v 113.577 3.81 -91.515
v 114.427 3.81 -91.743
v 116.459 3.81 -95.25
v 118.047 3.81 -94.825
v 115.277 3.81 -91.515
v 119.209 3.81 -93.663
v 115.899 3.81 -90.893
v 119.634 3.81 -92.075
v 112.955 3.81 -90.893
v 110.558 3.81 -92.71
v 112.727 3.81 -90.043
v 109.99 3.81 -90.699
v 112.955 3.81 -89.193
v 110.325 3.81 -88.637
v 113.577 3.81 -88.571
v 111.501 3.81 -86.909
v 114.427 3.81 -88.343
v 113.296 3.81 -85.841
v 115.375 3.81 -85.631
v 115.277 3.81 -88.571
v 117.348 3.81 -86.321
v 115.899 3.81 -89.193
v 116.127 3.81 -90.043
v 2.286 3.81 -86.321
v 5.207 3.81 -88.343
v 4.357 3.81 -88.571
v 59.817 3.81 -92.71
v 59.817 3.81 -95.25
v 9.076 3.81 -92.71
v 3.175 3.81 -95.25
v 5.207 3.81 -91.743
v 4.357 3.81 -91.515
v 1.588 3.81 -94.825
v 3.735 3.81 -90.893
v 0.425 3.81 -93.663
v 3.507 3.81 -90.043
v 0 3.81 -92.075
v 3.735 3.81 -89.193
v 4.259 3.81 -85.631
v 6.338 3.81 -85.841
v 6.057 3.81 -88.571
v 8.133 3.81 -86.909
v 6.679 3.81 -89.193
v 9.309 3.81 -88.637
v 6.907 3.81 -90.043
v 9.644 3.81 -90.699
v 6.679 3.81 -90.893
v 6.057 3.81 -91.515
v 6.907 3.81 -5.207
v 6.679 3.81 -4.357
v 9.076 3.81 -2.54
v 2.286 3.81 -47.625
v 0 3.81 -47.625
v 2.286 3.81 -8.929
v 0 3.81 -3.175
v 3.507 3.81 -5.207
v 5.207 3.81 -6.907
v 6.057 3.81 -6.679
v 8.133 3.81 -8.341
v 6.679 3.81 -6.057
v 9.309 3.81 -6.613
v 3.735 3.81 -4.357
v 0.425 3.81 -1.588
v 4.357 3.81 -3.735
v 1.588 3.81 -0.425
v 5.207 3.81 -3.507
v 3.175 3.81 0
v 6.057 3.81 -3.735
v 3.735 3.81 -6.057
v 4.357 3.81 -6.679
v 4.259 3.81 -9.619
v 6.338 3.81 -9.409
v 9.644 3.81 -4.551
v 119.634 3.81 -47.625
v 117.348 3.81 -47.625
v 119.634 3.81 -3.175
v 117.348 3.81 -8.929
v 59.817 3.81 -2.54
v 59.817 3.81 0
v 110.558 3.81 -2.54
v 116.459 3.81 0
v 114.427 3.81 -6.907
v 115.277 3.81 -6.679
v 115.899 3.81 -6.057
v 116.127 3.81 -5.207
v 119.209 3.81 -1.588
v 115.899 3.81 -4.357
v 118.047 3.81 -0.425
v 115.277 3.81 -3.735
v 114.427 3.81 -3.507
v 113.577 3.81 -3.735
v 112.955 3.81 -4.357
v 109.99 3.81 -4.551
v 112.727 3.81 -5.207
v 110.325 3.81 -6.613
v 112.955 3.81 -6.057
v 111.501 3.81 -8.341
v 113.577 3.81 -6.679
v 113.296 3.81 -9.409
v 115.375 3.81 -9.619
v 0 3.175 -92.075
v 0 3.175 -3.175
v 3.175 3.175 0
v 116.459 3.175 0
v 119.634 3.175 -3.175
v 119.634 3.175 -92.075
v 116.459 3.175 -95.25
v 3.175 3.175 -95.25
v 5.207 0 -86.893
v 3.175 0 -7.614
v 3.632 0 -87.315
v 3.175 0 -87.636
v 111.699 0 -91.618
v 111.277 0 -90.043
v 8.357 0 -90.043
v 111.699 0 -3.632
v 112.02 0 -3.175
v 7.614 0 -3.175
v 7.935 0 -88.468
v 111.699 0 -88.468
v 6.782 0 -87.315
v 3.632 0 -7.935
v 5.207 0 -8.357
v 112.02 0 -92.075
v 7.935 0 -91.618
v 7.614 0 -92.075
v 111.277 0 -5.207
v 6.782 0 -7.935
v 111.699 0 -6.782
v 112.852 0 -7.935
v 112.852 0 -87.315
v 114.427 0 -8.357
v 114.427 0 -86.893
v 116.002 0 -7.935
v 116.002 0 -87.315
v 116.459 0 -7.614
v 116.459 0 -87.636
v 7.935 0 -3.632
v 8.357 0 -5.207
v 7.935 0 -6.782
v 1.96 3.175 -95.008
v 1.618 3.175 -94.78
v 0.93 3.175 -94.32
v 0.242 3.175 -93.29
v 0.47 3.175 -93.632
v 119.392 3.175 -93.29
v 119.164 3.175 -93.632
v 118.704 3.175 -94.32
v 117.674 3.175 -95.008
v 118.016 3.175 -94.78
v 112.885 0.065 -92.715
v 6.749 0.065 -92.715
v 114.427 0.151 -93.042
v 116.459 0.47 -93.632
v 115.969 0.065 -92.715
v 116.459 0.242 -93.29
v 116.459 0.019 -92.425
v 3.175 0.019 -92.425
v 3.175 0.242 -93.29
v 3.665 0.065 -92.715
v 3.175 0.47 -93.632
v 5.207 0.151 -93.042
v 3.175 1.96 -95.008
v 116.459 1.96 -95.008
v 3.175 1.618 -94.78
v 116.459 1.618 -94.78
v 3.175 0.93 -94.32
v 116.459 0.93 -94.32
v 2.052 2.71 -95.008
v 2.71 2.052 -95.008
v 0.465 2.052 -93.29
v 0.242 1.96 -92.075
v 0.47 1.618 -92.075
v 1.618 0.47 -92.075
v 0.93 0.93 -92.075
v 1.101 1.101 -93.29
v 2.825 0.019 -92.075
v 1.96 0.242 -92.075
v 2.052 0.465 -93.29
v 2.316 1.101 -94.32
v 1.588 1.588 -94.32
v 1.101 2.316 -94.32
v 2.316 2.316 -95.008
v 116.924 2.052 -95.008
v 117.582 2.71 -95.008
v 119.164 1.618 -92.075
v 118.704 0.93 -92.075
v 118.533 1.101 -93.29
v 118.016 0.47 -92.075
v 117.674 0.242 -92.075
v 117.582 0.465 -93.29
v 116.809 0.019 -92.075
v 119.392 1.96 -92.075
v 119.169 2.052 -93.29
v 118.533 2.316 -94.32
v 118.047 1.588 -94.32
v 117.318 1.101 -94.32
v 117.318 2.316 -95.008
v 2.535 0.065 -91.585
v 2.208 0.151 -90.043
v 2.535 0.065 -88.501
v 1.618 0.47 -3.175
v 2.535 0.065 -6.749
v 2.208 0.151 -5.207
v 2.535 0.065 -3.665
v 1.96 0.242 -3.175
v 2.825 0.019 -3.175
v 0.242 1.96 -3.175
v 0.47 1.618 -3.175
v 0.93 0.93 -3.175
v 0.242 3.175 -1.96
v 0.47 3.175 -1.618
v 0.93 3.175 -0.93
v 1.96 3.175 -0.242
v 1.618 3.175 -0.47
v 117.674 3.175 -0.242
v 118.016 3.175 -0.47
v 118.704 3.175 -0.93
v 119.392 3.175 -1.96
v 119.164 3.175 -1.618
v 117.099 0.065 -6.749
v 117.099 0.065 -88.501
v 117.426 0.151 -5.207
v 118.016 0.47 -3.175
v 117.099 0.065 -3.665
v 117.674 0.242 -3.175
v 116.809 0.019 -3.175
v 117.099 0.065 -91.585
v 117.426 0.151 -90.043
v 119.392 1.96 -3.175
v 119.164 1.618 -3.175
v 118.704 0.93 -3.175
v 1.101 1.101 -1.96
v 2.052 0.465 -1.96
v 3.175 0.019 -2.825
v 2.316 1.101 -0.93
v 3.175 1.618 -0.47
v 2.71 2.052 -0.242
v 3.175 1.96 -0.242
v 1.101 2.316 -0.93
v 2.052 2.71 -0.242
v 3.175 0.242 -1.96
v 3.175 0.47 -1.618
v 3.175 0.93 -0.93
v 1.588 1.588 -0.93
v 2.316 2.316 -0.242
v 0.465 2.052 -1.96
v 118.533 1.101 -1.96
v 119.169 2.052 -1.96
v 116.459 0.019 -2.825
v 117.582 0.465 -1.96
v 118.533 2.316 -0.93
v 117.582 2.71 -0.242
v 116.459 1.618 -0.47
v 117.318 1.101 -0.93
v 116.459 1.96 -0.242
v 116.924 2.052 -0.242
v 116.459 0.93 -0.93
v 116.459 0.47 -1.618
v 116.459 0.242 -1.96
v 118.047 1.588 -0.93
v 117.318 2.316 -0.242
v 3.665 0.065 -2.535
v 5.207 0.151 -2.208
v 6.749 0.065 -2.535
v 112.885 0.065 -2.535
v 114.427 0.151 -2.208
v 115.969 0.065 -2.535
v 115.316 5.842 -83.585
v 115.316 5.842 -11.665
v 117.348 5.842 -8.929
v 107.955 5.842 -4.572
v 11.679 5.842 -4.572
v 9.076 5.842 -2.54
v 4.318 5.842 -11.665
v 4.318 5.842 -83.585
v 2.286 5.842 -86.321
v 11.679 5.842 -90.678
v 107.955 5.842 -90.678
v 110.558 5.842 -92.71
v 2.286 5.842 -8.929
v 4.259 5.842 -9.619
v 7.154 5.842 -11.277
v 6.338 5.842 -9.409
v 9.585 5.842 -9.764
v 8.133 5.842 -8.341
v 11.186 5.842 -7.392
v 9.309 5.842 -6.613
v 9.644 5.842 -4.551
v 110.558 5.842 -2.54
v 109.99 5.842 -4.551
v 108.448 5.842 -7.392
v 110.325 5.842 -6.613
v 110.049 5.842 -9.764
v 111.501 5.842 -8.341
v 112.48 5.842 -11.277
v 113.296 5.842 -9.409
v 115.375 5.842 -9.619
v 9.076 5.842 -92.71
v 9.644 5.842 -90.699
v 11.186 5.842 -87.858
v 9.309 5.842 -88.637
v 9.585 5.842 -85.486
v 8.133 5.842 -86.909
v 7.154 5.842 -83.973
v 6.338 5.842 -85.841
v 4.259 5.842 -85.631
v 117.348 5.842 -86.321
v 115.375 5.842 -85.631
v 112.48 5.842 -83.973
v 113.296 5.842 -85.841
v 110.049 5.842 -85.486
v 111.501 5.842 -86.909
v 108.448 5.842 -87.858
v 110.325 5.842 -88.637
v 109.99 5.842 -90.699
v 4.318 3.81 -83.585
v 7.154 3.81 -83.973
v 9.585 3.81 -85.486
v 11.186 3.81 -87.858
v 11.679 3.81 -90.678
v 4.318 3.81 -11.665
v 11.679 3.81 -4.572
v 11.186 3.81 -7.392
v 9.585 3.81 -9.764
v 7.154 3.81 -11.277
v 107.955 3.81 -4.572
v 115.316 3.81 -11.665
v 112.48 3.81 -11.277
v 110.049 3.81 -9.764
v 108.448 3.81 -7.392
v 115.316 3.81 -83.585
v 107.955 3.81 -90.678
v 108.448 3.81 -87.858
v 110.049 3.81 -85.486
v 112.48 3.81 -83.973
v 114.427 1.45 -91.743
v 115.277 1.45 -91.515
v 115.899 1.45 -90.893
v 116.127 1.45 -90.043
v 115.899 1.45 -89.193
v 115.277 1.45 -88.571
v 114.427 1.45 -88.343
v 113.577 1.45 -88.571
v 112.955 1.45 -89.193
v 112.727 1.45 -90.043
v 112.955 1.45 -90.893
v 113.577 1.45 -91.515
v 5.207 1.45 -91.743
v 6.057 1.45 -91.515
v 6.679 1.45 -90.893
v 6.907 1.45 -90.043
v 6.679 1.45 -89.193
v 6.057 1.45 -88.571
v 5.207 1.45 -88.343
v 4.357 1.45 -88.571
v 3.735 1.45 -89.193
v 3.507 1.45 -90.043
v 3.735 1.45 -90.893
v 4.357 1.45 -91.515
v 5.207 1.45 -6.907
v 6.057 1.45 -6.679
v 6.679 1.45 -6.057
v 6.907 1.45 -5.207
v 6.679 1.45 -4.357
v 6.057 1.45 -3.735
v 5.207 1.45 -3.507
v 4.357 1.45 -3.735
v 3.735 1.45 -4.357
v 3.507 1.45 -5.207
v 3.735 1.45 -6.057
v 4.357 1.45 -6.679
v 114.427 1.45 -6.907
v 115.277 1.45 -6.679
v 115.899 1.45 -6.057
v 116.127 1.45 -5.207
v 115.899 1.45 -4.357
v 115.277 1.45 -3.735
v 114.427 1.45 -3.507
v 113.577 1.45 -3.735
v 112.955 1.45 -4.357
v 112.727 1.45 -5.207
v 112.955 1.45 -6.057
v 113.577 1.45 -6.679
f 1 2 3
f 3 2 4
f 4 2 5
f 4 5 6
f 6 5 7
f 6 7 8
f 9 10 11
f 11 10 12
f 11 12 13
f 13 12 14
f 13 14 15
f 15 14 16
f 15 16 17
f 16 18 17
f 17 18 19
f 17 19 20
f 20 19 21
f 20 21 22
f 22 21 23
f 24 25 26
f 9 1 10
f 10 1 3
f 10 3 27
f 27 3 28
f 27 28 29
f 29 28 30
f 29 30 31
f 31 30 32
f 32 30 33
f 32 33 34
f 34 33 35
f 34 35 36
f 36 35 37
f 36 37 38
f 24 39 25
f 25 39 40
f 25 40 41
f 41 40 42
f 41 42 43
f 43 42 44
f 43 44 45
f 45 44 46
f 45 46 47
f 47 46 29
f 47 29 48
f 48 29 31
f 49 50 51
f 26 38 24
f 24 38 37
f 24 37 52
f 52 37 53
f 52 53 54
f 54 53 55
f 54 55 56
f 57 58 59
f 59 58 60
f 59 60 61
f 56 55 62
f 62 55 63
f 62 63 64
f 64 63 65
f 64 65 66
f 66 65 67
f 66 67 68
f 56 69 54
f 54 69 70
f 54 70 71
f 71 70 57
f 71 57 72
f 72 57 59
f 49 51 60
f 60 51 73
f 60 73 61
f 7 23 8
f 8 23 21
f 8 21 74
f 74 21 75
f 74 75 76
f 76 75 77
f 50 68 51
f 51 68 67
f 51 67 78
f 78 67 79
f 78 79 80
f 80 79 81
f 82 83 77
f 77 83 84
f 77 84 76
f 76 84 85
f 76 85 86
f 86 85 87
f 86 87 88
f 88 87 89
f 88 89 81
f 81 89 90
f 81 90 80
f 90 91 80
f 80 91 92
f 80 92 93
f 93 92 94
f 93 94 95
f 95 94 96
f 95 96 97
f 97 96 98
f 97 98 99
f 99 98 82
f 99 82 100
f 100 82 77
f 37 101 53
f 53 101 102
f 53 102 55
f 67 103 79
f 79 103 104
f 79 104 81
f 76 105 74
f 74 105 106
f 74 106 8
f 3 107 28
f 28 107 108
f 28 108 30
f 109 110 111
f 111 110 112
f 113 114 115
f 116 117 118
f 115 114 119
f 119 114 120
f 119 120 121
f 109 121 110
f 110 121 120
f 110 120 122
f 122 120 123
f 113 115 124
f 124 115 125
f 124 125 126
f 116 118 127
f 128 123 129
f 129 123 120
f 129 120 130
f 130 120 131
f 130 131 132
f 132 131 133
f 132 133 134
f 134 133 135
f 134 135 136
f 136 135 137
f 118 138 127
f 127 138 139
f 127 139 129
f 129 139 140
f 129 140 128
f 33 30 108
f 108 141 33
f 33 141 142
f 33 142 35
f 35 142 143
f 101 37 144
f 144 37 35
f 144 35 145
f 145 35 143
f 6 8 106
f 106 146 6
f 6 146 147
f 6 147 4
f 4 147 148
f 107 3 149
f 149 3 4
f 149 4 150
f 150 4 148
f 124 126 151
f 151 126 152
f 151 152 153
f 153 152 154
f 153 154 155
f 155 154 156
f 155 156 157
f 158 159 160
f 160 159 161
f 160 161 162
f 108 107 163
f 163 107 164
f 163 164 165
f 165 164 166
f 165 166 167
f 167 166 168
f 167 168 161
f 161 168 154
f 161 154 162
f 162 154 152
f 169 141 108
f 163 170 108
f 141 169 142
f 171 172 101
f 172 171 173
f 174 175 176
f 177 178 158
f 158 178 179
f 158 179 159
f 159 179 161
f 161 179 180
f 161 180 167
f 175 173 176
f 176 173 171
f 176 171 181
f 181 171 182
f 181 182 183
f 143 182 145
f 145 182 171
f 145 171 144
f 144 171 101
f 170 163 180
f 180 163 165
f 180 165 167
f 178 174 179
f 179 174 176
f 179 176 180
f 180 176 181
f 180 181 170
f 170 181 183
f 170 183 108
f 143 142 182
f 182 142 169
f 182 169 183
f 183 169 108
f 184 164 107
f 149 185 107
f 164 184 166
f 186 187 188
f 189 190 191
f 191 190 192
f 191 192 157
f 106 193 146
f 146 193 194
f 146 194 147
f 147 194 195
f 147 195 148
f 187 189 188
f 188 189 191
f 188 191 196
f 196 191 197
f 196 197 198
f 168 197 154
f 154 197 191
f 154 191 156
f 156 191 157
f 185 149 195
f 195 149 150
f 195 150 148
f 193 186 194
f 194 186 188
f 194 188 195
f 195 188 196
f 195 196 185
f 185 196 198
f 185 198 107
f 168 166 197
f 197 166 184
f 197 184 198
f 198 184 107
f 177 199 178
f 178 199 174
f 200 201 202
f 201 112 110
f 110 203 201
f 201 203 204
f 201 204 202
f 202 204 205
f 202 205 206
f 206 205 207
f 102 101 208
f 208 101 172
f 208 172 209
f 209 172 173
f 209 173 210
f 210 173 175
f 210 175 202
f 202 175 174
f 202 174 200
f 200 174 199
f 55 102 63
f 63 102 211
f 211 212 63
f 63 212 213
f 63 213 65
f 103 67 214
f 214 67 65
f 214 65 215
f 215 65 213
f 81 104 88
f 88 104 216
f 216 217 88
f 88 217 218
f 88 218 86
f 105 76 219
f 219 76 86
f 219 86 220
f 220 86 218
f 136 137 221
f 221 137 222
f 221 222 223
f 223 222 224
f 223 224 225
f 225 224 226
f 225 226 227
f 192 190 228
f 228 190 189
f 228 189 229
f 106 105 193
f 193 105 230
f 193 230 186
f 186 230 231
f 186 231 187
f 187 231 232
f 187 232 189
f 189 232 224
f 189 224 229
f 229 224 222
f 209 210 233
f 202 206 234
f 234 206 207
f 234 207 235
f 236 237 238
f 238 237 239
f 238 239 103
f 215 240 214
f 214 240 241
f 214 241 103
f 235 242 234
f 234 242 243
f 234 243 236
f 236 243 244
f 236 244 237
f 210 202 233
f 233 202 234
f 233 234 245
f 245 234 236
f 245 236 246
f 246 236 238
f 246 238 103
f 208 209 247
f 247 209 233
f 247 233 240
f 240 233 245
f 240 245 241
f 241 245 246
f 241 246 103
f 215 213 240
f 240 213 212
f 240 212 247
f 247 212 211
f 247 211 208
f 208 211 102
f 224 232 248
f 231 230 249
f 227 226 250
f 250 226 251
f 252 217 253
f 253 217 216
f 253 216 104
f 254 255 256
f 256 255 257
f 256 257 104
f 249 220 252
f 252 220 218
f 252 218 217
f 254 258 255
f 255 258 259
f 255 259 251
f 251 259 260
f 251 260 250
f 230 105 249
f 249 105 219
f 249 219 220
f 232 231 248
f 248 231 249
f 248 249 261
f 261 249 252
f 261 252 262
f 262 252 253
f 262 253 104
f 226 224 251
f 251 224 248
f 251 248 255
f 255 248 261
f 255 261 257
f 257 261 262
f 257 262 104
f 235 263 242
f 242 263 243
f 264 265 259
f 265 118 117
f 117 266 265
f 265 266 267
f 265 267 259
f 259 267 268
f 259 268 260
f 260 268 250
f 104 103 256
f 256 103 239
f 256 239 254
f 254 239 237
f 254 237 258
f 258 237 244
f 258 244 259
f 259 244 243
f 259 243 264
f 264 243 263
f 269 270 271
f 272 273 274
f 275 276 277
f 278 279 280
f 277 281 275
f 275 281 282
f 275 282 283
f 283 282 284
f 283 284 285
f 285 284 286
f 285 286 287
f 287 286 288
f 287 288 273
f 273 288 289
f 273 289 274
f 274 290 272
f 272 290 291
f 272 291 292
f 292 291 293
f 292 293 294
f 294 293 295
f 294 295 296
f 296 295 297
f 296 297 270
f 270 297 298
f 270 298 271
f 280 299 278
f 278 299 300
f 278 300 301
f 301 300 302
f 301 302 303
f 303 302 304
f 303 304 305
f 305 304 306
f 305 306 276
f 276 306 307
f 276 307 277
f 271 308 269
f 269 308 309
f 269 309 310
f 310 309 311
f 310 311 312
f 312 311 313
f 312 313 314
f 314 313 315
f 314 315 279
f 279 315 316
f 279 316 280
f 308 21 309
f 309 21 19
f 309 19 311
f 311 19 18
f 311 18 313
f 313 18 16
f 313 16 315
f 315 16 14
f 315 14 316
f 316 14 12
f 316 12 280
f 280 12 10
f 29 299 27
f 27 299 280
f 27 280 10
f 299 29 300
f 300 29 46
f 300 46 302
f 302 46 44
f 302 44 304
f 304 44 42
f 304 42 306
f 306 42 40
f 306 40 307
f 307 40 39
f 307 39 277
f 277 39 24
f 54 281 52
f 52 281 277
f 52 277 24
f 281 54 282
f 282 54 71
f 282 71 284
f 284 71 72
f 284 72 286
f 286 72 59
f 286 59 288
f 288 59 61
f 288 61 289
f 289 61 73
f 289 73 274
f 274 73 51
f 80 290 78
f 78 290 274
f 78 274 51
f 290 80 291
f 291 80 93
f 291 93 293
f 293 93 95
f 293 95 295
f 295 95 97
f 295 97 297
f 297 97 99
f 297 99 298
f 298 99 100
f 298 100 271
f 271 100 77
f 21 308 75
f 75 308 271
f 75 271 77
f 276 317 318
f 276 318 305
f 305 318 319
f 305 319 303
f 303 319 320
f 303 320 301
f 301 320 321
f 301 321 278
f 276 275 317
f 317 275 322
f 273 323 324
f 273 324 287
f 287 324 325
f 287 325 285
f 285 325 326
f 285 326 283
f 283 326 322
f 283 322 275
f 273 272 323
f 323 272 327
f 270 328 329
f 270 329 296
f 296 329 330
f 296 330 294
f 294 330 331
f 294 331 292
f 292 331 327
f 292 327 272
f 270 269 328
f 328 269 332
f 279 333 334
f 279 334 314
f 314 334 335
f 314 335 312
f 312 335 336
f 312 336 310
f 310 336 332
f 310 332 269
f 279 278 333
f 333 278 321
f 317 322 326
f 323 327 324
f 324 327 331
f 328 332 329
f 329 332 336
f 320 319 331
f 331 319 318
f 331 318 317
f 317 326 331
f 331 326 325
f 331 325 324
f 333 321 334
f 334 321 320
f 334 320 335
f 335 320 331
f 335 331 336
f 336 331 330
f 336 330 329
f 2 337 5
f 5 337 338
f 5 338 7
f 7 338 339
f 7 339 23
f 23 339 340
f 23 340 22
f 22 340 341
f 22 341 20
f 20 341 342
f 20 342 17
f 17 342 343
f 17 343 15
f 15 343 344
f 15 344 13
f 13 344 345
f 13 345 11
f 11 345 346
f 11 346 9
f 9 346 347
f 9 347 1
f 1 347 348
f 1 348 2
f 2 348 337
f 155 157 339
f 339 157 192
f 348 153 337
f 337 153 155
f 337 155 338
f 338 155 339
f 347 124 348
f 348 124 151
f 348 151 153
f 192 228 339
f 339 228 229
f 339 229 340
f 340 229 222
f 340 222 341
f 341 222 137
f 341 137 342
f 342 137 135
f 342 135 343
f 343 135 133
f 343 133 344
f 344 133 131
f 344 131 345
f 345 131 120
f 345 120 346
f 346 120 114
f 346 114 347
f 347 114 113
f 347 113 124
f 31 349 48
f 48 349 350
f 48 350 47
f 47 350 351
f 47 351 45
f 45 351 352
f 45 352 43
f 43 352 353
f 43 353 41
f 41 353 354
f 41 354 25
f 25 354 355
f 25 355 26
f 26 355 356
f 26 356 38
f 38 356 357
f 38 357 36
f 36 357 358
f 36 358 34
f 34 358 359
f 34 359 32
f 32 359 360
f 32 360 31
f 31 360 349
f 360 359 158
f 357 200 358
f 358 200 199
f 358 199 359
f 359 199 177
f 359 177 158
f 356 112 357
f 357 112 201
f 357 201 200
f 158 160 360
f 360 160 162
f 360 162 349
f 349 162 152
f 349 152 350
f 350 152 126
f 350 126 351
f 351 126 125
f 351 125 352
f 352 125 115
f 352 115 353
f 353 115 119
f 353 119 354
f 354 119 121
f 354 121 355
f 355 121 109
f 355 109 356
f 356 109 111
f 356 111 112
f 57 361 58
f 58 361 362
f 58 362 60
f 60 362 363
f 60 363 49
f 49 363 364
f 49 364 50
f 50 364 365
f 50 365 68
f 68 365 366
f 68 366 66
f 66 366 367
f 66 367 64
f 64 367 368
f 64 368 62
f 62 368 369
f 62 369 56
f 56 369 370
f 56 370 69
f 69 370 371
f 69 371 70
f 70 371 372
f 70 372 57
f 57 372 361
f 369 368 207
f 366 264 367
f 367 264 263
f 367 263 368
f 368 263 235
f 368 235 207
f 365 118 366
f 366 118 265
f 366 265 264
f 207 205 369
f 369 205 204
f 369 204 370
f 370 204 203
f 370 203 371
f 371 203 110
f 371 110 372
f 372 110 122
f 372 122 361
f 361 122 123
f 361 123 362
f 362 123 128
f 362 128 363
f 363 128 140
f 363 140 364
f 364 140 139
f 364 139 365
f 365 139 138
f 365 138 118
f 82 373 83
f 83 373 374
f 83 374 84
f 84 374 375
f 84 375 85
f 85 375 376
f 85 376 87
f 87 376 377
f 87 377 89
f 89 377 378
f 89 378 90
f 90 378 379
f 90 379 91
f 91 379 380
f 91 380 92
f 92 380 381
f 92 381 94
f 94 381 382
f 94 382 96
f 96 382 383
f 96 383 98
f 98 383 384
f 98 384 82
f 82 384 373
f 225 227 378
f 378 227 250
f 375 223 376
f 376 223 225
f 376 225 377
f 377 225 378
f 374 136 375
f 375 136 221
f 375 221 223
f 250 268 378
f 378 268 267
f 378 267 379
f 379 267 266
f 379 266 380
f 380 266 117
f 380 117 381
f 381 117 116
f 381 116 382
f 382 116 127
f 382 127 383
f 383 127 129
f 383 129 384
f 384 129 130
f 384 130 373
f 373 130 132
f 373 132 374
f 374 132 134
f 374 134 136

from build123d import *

# Parameters (mm, degrees)
SKETCH1_W                                       = 119.634
SKETCH1_H                                       = 95.25
BOSS_EXTRUDE1_DEPTH                             = 3.81
FILLET1_R                                       = 3.175
BOSS_EXTRUDE2_DEPTH                             = 2.032
CSK_FOR_M3_FLAT_HEAD_MACHINE_SCREW1_D           = 3.4
CSK_FOR_M3_FLAT_HEAD_MACHINE_SCREW1_DEPTH       = 25.4
CSK_FOR_M3_FLAT_HEAD_MACHINE_SCREW1_CSINK_D     = 6.3
CSK_FOR_M3_FLAT_HEAD_MACHINE_SCREW1_CSINK_ANGLE = 90
CSK_FOR_M3_FLAT_HEAD_MACHINE_SCREW1_TIP         = 1.021463052


with BuildPart() as part:
    # Sketch1 → Boss-Extrude1 (new body)
    with BuildSketch(Plane(origin=(0, 0, 0), x_dir=(1, 0, 0), z_dir=(0, 1, 0))):
        with Locations((59.817, 47.625)):
            Rectangle(SKETCH1_W, SKETCH1_H)
    extrude(amount=BOSS_EXTRUDE1_DEPTH)

    # Fillet1
    fillet1_edges = [part.edges().sort_by_distance(p)[0] for p in [
        (59.817, 0, -95.25),
        (119.634, 0, -47.625),
        (59.817, 0, 0),
        (0, 0, -47.625),
        (0, 1.905, -95.25),
        (119.634, 1.905, -95.25),
        (119.634, 1.905, 0),
        (0, 1.905, 0),
    ]]
    fillet(fillet1_edges, radius=FILLET1_R)

    # Sketch2 → Boss-Extrude2 (add)
    with BuildSketch(Plane(origin=(0, 3.81, 0), x_dir=(1, 0, 0), z_dir=(0, 1, 0))):
        with BuildLine():
            Line((9.076232935, 92.71), (110.557767065, 92.71))
            ThreePointArc((110.557767065, 92.71), (111.500790054, 86.90936796), (117.348, 86.320504417))
            Line((117.348, 86.320504417), (117.348, 8.929495583))
            ThreePointArc((117.348, 8.929495583), (111.500790054, 8.34063204), (110.557767065, 2.54))
            Line((110.557767065, 2.54), (9.076232935, 2.54))
            ThreePointArc((9.076232935, 2.54), (8.133209946, 8.34063204), (2.286, 8.929495583))
            Line((2.286, 8.929495583), (2.286, 86.320504417))
            ThreePointArc((2.286, 86.320504417), (8.133209946, 86.90936796), (9.076232935, 92.71))
        make_face()
        with BuildLine():
            Line((11.679294682, 90.678), (107.954705318, 90.678))
            ThreePointArc((107.954705318, 90.678), (110.049437362, 85.485554332), (115.316, 83.584840695))
            Line((115.316, 83.584840695), (115.316, 11.665159305))
            ThreePointArc((115.316, 11.665159305), (110.049437362, 9.764445668), (107.954705318, 4.572))
            Line((107.954705318, 4.572), (11.679294682, 4.572))
            ThreePointArc((11.679294682, 4.572), (9.584562638, 9.764445668), (4.318, 11.665159305))
            Line((4.318, 11.665159305), (4.318, 83.584840695))
            ThreePointArc((4.318, 83.584840695), (9.584562638, 85.485554332), (11.679294682, 90.678))
        make_face(mode=Mode.SUBTRACT)
    extrude(amount=BOSS_EXTRUDE2_DEPTH)

    # CSK for M3 Flat Head Machine Screw1
    with Locations(Plane(origin=(0, 0, 0), x_dir=(-1, 0, 0), z_dir=(0, -1, 0))):
        with Locations((-114.427, 5.207), (-5.207, 5.207), (-5.207, 90.043), (-114.427, 90.043)):
            CounterSinkHole(CSK_FOR_M3_FLAT_HEAD_MACHINE_SCREW1_D / 2, CSK_FOR_M3_FLAT_HEAD_MACHINE_SCREW1_CSINK_D / 2, depth=CSK_FOR_M3_FLAT_HEAD_MACHINE_SCREW1_DEPTH, counter_sink_angle=CSK_FOR_M3_FLAT_HEAD_MACHINE_SCREW1_CSINK_ANGLE)
            with Locations((0, 0, -(CSK_FOR_M3_FLAT_HEAD_MACHINE_SCREW1_DEPTH + CSK_FOR_M3_FLAT_HEAD_MACHINE_SCREW1_TIP / 2))):  # 118° drill point
                Cone(0, CSK_FOR_M3_FLAT_HEAD_MACHINE_SCREW1_D / 2, CSK_FOR_M3_FLAT_HEAD_MACHINE_SCREW1_TIP, mode=Mode.SUBTRACT)


solid = part.part
